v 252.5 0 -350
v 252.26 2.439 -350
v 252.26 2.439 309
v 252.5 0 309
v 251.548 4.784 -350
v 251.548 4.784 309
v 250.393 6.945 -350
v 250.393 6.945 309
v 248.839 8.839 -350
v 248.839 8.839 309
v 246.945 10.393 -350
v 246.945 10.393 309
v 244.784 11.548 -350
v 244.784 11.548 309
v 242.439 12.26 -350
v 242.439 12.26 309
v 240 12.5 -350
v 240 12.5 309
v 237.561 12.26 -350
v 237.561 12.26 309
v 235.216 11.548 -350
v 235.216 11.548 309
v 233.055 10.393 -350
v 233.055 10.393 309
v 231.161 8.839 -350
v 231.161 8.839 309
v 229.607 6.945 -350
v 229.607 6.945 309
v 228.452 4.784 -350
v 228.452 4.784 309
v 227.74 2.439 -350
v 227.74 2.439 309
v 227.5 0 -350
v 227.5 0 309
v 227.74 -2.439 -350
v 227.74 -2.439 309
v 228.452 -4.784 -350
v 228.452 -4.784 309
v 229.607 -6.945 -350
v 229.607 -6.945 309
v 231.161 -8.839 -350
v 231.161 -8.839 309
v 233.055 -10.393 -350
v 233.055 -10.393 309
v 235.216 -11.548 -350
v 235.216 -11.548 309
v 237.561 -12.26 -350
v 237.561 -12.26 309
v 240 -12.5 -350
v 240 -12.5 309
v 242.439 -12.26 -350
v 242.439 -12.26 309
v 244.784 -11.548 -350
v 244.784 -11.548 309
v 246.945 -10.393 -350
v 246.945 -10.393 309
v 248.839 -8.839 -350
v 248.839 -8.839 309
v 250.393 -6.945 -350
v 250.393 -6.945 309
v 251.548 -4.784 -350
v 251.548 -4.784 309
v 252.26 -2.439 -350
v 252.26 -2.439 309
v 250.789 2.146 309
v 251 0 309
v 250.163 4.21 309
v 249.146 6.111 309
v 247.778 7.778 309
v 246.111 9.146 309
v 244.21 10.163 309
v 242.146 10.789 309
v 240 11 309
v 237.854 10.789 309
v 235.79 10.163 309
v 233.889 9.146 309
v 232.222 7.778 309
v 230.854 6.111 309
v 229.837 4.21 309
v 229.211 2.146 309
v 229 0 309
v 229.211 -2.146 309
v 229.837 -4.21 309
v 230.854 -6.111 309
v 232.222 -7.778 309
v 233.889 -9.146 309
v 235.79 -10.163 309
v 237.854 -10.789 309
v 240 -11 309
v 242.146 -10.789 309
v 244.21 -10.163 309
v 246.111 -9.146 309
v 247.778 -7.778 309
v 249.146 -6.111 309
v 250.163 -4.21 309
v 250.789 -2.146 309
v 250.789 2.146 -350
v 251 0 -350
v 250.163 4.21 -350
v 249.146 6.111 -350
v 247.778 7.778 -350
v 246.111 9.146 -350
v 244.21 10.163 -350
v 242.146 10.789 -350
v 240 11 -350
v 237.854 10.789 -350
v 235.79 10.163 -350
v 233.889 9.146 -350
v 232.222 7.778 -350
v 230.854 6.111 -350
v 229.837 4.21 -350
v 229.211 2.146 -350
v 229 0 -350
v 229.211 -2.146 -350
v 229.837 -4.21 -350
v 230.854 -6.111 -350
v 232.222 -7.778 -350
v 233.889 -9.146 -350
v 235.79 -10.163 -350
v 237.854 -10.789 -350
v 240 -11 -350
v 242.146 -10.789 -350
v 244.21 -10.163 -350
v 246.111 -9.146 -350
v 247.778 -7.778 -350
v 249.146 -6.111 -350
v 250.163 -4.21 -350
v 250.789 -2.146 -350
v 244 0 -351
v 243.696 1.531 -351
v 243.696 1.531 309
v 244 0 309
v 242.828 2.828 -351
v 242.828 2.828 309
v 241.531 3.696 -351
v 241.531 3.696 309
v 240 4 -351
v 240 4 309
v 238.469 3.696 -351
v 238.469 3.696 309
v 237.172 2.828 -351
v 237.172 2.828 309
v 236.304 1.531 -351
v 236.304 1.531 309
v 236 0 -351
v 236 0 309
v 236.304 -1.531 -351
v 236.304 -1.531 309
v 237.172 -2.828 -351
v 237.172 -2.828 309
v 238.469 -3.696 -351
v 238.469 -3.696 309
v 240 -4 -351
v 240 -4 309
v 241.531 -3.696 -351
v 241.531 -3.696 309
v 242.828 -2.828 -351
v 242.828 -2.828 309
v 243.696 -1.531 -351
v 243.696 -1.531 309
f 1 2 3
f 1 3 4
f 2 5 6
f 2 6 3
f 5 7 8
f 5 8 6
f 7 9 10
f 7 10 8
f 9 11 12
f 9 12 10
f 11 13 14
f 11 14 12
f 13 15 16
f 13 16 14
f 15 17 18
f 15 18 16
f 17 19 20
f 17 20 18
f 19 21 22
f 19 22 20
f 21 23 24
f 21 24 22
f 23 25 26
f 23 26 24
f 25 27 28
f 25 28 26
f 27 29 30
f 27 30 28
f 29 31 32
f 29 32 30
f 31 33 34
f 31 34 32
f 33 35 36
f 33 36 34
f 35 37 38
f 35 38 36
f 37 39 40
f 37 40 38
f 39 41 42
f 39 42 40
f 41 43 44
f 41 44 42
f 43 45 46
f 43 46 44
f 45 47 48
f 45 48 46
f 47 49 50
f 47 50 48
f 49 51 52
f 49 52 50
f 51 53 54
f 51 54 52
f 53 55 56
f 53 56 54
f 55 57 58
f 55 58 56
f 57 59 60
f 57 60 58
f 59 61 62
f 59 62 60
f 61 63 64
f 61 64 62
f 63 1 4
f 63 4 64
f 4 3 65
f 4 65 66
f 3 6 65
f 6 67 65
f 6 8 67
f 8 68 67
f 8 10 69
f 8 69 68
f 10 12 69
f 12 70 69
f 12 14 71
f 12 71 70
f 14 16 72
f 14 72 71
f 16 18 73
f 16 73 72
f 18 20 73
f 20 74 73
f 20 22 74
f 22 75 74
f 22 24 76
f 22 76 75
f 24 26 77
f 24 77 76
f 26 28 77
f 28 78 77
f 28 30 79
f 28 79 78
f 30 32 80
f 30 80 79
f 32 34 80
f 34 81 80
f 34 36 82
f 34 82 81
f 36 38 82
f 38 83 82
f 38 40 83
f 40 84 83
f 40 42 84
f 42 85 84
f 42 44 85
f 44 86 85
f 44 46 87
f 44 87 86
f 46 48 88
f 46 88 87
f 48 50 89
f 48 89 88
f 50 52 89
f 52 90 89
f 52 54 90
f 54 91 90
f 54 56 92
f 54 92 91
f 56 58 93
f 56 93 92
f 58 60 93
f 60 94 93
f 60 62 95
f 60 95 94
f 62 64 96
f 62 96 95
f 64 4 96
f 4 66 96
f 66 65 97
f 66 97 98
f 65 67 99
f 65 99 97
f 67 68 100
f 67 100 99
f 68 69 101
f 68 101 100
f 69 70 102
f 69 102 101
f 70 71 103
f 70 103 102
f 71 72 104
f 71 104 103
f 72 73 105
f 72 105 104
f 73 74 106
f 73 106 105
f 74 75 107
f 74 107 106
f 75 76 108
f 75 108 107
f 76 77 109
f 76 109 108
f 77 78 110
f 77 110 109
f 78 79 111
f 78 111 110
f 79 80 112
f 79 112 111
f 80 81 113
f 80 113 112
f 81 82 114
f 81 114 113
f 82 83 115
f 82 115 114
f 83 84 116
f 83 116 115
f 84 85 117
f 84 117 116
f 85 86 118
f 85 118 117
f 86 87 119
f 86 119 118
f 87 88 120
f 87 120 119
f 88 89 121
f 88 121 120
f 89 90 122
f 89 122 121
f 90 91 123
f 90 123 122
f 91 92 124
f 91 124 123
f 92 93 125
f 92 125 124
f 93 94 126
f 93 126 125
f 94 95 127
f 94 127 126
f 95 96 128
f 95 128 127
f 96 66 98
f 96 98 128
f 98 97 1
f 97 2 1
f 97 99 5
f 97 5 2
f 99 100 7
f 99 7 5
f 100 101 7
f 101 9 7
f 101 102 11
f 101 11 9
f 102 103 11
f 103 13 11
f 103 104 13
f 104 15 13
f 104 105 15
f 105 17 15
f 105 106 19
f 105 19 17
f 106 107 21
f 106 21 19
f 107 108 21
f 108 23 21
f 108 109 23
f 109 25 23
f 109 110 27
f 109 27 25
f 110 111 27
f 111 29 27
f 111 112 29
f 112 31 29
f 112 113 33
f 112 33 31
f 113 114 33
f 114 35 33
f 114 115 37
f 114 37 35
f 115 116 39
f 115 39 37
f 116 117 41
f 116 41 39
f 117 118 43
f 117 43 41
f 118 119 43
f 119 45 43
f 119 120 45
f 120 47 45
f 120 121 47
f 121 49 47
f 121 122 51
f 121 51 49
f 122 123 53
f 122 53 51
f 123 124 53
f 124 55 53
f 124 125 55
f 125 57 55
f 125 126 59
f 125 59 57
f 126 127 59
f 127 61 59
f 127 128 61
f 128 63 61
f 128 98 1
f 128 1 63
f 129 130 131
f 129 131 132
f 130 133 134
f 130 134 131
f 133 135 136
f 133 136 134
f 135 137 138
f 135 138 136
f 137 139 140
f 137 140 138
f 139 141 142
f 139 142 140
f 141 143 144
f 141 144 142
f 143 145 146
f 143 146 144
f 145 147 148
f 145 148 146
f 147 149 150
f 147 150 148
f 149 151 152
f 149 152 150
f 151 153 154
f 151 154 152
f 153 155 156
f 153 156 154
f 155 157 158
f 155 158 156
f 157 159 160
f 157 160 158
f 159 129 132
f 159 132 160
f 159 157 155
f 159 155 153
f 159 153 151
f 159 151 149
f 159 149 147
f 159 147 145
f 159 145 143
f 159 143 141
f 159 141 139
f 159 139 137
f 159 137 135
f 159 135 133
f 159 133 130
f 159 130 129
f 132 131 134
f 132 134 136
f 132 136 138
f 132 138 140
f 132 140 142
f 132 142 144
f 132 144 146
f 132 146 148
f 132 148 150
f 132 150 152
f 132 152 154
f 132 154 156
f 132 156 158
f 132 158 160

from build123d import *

# Parameters (mm, degrees)
EXTRUDE_START        = -350
EXTRUDE_SKETCH_1_R   = 12.5
EXTRUDE_SKETCH_1_R_2 = 11
EXTRUDE_1_DEPTH      = 659
EXTRUDE_START_2      = -351
EXTRUDE_SKETCH_2_R   = 4
EXTRUDE_2_DEPTH      = 660


with BuildPart() as part:
    # Extrude sketch 1 → Extrude 1 (new body)
    with BuildSketch(Plane.XY.offset(EXTRUDE_START)):
        with Locations((240, 0)):
            Circle(EXTRUDE_SKETCH_1_R)
        with Locations((240, 0)):
            Circle(EXTRUDE_SKETCH_1_R_2, mode=Mode.SUBTRACT)
    extrude(amount=EXTRUDE_1_DEPTH)


with BuildPart() as body_2:
    # Extrude sketch 2 → Extrude 2 (new body)
    with BuildSketch(Plane.XY.offset(EXTRUDE_START_2)):
        with Locations((240, 0)):
            Circle(EXTRUDE_SKETCH_2_R)
    extrude(amount=EXTRUDE_2_DEPTH)


solid = Compound([part.part, body_2.part])
